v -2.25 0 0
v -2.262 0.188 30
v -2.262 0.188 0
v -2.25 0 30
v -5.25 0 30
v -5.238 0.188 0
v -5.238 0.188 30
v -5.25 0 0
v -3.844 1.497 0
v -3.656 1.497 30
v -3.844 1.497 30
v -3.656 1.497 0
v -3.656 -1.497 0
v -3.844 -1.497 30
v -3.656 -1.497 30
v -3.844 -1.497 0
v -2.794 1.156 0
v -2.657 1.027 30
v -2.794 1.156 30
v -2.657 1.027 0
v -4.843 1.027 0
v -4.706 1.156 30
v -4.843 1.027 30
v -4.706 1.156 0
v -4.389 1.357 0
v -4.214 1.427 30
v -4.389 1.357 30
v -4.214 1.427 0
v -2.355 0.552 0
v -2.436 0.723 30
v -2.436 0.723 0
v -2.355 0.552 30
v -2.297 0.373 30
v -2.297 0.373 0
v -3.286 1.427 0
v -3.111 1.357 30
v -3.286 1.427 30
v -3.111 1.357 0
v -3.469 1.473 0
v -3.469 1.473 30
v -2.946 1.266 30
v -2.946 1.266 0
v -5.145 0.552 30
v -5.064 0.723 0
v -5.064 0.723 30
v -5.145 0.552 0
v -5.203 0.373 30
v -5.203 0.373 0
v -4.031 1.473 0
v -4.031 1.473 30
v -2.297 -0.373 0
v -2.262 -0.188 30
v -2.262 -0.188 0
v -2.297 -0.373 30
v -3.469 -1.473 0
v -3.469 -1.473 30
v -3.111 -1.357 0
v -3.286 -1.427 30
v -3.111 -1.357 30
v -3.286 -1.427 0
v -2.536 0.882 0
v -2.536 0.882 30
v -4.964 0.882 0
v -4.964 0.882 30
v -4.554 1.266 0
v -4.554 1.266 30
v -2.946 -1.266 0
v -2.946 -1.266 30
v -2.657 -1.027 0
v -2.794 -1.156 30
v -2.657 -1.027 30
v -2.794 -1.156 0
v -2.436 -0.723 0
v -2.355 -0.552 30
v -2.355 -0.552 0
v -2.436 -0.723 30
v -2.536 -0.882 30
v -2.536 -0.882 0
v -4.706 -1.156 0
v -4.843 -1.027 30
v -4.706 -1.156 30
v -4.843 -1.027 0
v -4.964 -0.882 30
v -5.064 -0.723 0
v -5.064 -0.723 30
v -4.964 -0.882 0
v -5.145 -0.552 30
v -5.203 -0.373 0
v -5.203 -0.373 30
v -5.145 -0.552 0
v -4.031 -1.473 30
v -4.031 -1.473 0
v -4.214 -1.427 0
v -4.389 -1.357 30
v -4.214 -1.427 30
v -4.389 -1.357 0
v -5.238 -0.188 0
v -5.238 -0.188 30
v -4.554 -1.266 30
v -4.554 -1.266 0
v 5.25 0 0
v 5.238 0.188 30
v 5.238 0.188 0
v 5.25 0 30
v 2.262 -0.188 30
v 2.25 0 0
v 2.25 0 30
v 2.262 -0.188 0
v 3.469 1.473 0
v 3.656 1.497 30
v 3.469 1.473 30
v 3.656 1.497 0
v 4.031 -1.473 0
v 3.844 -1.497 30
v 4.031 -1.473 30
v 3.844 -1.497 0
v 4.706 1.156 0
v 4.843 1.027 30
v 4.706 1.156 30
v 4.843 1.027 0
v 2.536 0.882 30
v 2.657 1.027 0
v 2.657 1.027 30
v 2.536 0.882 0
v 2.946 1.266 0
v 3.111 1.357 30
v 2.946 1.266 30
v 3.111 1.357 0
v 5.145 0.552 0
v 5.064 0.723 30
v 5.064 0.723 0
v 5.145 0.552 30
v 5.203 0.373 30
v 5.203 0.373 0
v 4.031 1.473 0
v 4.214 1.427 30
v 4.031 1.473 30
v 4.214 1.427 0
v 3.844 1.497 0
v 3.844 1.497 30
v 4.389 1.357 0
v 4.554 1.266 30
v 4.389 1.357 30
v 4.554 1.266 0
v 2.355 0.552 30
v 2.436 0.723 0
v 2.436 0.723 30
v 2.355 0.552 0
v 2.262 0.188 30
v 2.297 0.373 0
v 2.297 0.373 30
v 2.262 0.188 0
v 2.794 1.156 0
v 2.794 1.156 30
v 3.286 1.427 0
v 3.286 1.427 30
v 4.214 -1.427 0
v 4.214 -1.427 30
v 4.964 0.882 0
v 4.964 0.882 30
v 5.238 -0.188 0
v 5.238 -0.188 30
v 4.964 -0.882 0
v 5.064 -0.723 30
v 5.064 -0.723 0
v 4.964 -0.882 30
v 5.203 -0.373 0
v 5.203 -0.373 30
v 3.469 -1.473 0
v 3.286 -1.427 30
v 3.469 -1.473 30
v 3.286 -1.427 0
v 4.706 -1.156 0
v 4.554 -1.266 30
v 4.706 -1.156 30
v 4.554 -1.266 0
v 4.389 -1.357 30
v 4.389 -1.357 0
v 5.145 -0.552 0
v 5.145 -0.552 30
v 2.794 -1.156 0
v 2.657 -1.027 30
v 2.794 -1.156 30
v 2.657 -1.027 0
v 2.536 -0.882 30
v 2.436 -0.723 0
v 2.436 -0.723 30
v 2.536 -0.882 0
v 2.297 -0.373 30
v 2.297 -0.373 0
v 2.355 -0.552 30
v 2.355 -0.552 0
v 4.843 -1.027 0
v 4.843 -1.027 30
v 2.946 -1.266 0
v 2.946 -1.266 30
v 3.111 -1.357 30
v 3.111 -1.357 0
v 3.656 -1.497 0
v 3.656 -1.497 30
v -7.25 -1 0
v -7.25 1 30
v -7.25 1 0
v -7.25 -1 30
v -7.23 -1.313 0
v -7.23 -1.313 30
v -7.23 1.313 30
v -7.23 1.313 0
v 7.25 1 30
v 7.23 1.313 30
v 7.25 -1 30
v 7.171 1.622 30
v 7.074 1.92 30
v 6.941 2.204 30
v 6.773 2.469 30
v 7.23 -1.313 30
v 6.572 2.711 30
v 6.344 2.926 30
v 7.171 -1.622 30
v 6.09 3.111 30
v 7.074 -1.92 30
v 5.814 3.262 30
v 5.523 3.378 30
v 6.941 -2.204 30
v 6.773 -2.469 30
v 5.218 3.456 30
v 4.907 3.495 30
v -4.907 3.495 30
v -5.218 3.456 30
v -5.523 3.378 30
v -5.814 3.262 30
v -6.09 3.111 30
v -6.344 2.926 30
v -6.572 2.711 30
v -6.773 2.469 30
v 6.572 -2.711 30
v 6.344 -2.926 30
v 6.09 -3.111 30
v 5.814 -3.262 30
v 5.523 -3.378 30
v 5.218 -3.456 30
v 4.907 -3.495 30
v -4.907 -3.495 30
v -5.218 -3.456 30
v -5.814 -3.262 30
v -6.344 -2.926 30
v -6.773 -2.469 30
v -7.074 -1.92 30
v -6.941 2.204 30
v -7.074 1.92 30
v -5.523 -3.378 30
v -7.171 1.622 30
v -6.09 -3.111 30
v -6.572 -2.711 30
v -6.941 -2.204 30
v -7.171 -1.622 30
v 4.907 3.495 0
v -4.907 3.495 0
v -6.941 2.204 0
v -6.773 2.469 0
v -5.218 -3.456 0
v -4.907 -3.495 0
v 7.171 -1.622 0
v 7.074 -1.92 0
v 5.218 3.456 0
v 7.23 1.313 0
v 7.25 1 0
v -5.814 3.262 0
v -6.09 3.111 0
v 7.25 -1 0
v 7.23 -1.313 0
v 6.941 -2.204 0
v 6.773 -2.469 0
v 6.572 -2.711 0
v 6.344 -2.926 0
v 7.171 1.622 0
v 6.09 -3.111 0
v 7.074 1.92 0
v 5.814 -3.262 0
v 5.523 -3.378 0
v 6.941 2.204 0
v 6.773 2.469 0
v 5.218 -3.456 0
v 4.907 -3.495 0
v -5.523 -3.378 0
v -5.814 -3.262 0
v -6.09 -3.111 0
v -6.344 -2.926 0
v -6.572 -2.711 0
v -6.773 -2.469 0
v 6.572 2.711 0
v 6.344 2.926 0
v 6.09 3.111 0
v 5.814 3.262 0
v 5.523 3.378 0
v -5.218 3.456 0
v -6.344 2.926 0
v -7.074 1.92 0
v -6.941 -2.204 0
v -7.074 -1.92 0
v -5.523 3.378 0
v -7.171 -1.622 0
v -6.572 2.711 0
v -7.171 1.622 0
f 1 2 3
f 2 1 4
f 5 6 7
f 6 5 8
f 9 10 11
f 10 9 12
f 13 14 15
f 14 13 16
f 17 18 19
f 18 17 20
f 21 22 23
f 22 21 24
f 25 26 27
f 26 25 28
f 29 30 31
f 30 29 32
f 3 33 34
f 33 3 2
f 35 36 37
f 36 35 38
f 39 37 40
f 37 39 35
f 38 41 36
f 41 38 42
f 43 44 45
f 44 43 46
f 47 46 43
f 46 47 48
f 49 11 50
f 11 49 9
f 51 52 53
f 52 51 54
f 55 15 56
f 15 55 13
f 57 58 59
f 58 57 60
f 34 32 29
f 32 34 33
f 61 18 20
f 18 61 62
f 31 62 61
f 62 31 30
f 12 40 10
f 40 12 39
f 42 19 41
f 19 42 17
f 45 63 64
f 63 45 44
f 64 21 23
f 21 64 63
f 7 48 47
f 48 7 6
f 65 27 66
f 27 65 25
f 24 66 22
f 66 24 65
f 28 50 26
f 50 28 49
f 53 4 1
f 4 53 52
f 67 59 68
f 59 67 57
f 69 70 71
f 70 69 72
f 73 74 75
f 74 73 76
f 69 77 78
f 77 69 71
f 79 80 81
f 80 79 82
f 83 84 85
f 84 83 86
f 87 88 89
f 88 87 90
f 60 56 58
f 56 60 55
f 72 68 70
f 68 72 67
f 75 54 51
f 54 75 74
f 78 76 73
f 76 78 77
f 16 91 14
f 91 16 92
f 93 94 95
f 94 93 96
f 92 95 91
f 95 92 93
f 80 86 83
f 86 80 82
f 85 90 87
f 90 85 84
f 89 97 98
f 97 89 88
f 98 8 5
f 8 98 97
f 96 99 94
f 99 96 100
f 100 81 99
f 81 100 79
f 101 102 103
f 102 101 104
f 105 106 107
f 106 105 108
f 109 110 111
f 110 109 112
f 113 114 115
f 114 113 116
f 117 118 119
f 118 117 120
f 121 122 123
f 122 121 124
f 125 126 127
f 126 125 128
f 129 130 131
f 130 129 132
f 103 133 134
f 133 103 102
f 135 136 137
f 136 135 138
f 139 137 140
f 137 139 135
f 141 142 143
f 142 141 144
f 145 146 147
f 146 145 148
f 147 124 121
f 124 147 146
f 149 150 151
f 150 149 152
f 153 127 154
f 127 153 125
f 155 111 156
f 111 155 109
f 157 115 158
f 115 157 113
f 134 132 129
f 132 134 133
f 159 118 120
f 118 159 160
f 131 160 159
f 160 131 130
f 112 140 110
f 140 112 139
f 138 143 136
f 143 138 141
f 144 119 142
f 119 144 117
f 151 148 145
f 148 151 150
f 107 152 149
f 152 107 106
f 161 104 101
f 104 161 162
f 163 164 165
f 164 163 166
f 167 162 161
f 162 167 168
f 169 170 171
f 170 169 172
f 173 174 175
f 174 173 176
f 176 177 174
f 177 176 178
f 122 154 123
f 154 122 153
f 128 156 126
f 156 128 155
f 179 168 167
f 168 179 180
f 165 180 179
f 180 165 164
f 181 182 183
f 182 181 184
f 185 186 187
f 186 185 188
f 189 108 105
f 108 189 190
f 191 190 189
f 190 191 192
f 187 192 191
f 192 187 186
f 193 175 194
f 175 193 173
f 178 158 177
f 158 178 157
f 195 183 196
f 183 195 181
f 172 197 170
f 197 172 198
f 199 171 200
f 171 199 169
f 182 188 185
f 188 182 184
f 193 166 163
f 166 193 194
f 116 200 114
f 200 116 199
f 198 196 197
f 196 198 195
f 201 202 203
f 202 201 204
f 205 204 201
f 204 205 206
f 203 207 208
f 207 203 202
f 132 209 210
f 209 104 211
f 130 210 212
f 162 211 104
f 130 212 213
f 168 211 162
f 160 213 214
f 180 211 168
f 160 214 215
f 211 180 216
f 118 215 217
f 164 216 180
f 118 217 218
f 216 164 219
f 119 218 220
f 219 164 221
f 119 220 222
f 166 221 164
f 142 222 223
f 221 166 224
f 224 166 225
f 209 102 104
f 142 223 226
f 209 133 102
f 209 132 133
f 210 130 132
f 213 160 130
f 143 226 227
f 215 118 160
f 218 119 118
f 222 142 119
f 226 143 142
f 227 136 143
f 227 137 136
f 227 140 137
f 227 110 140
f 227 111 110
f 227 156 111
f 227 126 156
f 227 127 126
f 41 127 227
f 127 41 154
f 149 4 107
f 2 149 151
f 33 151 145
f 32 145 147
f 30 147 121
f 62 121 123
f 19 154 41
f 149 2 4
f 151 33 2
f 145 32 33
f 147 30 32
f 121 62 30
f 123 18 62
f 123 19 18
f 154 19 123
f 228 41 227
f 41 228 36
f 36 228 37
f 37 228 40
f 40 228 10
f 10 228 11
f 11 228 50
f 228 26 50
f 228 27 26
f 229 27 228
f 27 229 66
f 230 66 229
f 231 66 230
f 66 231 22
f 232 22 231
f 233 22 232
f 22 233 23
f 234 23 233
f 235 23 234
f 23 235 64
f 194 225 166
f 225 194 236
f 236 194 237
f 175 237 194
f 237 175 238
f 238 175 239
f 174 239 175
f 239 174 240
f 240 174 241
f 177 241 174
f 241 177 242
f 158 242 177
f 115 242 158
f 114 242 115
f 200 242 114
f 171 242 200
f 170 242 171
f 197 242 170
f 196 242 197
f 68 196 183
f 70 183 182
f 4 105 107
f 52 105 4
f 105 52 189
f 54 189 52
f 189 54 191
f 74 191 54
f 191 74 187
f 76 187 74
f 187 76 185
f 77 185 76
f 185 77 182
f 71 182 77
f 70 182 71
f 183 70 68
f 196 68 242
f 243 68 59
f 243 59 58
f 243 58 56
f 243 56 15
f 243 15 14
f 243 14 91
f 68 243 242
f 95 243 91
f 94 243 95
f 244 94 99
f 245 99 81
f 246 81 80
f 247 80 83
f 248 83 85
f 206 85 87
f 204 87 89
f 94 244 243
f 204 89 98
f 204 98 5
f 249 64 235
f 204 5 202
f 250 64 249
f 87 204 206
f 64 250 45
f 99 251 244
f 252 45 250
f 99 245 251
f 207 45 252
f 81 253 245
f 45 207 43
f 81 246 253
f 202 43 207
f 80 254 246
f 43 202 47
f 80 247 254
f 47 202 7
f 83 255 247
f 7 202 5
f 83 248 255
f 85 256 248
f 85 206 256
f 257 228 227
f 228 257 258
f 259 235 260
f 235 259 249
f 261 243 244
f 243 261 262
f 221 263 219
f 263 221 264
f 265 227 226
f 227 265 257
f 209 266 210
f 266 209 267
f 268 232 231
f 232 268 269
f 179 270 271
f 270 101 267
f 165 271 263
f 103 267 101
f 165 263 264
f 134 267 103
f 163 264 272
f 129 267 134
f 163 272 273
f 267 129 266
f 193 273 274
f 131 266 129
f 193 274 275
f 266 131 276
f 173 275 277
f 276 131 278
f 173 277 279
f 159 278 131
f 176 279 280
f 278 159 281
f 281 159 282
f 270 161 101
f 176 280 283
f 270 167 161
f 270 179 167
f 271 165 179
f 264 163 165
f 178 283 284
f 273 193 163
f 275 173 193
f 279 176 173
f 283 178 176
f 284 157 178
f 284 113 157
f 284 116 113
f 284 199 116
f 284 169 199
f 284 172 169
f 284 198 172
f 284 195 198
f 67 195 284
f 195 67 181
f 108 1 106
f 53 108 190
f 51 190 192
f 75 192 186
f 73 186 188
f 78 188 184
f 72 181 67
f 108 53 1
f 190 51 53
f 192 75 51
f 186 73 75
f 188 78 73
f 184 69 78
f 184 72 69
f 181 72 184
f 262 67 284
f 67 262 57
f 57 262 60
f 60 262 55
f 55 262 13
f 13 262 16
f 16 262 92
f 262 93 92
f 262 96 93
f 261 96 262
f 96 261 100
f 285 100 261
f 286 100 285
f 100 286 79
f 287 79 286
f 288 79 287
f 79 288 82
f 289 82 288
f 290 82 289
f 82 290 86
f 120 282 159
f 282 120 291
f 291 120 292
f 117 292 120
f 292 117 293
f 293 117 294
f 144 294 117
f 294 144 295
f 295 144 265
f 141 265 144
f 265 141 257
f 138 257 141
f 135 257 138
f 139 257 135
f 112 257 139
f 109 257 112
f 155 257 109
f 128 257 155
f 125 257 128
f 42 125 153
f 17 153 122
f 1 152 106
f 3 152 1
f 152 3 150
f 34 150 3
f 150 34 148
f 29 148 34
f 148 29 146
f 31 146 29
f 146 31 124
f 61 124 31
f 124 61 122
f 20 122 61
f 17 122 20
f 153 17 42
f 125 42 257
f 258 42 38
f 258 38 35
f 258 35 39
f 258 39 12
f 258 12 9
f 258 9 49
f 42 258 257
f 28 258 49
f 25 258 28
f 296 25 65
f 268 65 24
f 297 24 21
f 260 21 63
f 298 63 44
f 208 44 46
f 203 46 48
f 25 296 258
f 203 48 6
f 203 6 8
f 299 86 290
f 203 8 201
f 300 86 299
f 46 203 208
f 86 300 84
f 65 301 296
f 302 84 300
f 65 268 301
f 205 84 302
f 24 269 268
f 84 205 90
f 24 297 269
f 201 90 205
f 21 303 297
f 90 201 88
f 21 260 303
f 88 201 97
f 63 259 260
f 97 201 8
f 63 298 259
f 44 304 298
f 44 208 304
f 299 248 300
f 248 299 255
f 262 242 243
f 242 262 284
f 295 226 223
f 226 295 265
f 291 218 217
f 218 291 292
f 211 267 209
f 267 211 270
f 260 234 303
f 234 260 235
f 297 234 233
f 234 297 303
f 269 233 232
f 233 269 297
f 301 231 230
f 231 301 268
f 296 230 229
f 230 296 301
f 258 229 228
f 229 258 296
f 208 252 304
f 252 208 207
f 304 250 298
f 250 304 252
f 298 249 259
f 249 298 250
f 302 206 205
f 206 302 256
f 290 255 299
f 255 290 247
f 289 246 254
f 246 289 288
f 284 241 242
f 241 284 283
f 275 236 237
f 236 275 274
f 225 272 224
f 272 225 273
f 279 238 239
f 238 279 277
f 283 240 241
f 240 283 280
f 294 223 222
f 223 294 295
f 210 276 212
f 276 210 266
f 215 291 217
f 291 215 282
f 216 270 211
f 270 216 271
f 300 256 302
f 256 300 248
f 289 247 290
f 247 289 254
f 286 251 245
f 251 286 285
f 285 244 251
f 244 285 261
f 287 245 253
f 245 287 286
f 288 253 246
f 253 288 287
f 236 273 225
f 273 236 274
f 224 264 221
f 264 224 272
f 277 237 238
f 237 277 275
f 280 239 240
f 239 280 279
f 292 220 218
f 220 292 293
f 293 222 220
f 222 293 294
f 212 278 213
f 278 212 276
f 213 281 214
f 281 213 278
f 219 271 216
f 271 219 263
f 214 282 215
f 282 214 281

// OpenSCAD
$fn = 50;


difference() {
	union() {
		translate(v = [0, 0, 0]) {
			rotate(a = [0, 0, 0]) {
				hull() {
					translate(v = [-4.7500000000, 1.0000000000, 0]) {
						rotate(a = [0, 0, 0]) {
							translate(v = [0, 0, 0]) {
								rotate(a = [0, 0, 0]) {
									cylinder(h = 30, r = 2.5000000000);
								}
							}
						}
					}
					translate(v = [4.7500000000, 1.0000000000, 0]) {
						rotate(a = [0, 0, 0]) {
							translate(v = [0, 0, 0]) {
								rotate(a = [0, 0, 0]) {
									cylinder(h = 30, r = 2.5000000000);
								}
							}
						}
					}
					translate(v = [-4.7500000000, -1.0000000000, 0]) {
						rotate(a = [0, 0, 0]) {
							translate(v = [0, 0, 0]) {
								rotate(a = [0, 0, 0]) {
									cylinder(h = 30, r = 2.5000000000);
								}
							}
						}
					}
					translate(v = [4.7500000000, -1.0000000000, 0]) {
						rotate(a = [0, 0, 0]) {
							translate(v = [0, 0, 0]) {
								rotate(a = [0, 0, 0]) {
									cylinder(h = 30, r = 2.5000000000);
								}
							}
						}
					}
				}
			}
		}
	}
	union() {
		translate(v = [-3.7500000000, 0.0000000000, 0]) {
			rotate(a = [0, 0, 0]) {
				translate(v = [0, 0, -50]) {
					rotate(a = [0, 0, 0]) {
						cylinder(h = 100, r = 1.5000000000);
					}
				}
			}
		}
		translate(v = [3.7500000000, 0.0000000000, 0]) {
			rotate(a = [0, 0, 0]) {
				translate(v = [0, 0, -50]) {
					rotate(a = [0, 0, 0]) {
						cylinder(h = 100, r = 1.5000000000);
					}
				}
			}
		}
	}
}
